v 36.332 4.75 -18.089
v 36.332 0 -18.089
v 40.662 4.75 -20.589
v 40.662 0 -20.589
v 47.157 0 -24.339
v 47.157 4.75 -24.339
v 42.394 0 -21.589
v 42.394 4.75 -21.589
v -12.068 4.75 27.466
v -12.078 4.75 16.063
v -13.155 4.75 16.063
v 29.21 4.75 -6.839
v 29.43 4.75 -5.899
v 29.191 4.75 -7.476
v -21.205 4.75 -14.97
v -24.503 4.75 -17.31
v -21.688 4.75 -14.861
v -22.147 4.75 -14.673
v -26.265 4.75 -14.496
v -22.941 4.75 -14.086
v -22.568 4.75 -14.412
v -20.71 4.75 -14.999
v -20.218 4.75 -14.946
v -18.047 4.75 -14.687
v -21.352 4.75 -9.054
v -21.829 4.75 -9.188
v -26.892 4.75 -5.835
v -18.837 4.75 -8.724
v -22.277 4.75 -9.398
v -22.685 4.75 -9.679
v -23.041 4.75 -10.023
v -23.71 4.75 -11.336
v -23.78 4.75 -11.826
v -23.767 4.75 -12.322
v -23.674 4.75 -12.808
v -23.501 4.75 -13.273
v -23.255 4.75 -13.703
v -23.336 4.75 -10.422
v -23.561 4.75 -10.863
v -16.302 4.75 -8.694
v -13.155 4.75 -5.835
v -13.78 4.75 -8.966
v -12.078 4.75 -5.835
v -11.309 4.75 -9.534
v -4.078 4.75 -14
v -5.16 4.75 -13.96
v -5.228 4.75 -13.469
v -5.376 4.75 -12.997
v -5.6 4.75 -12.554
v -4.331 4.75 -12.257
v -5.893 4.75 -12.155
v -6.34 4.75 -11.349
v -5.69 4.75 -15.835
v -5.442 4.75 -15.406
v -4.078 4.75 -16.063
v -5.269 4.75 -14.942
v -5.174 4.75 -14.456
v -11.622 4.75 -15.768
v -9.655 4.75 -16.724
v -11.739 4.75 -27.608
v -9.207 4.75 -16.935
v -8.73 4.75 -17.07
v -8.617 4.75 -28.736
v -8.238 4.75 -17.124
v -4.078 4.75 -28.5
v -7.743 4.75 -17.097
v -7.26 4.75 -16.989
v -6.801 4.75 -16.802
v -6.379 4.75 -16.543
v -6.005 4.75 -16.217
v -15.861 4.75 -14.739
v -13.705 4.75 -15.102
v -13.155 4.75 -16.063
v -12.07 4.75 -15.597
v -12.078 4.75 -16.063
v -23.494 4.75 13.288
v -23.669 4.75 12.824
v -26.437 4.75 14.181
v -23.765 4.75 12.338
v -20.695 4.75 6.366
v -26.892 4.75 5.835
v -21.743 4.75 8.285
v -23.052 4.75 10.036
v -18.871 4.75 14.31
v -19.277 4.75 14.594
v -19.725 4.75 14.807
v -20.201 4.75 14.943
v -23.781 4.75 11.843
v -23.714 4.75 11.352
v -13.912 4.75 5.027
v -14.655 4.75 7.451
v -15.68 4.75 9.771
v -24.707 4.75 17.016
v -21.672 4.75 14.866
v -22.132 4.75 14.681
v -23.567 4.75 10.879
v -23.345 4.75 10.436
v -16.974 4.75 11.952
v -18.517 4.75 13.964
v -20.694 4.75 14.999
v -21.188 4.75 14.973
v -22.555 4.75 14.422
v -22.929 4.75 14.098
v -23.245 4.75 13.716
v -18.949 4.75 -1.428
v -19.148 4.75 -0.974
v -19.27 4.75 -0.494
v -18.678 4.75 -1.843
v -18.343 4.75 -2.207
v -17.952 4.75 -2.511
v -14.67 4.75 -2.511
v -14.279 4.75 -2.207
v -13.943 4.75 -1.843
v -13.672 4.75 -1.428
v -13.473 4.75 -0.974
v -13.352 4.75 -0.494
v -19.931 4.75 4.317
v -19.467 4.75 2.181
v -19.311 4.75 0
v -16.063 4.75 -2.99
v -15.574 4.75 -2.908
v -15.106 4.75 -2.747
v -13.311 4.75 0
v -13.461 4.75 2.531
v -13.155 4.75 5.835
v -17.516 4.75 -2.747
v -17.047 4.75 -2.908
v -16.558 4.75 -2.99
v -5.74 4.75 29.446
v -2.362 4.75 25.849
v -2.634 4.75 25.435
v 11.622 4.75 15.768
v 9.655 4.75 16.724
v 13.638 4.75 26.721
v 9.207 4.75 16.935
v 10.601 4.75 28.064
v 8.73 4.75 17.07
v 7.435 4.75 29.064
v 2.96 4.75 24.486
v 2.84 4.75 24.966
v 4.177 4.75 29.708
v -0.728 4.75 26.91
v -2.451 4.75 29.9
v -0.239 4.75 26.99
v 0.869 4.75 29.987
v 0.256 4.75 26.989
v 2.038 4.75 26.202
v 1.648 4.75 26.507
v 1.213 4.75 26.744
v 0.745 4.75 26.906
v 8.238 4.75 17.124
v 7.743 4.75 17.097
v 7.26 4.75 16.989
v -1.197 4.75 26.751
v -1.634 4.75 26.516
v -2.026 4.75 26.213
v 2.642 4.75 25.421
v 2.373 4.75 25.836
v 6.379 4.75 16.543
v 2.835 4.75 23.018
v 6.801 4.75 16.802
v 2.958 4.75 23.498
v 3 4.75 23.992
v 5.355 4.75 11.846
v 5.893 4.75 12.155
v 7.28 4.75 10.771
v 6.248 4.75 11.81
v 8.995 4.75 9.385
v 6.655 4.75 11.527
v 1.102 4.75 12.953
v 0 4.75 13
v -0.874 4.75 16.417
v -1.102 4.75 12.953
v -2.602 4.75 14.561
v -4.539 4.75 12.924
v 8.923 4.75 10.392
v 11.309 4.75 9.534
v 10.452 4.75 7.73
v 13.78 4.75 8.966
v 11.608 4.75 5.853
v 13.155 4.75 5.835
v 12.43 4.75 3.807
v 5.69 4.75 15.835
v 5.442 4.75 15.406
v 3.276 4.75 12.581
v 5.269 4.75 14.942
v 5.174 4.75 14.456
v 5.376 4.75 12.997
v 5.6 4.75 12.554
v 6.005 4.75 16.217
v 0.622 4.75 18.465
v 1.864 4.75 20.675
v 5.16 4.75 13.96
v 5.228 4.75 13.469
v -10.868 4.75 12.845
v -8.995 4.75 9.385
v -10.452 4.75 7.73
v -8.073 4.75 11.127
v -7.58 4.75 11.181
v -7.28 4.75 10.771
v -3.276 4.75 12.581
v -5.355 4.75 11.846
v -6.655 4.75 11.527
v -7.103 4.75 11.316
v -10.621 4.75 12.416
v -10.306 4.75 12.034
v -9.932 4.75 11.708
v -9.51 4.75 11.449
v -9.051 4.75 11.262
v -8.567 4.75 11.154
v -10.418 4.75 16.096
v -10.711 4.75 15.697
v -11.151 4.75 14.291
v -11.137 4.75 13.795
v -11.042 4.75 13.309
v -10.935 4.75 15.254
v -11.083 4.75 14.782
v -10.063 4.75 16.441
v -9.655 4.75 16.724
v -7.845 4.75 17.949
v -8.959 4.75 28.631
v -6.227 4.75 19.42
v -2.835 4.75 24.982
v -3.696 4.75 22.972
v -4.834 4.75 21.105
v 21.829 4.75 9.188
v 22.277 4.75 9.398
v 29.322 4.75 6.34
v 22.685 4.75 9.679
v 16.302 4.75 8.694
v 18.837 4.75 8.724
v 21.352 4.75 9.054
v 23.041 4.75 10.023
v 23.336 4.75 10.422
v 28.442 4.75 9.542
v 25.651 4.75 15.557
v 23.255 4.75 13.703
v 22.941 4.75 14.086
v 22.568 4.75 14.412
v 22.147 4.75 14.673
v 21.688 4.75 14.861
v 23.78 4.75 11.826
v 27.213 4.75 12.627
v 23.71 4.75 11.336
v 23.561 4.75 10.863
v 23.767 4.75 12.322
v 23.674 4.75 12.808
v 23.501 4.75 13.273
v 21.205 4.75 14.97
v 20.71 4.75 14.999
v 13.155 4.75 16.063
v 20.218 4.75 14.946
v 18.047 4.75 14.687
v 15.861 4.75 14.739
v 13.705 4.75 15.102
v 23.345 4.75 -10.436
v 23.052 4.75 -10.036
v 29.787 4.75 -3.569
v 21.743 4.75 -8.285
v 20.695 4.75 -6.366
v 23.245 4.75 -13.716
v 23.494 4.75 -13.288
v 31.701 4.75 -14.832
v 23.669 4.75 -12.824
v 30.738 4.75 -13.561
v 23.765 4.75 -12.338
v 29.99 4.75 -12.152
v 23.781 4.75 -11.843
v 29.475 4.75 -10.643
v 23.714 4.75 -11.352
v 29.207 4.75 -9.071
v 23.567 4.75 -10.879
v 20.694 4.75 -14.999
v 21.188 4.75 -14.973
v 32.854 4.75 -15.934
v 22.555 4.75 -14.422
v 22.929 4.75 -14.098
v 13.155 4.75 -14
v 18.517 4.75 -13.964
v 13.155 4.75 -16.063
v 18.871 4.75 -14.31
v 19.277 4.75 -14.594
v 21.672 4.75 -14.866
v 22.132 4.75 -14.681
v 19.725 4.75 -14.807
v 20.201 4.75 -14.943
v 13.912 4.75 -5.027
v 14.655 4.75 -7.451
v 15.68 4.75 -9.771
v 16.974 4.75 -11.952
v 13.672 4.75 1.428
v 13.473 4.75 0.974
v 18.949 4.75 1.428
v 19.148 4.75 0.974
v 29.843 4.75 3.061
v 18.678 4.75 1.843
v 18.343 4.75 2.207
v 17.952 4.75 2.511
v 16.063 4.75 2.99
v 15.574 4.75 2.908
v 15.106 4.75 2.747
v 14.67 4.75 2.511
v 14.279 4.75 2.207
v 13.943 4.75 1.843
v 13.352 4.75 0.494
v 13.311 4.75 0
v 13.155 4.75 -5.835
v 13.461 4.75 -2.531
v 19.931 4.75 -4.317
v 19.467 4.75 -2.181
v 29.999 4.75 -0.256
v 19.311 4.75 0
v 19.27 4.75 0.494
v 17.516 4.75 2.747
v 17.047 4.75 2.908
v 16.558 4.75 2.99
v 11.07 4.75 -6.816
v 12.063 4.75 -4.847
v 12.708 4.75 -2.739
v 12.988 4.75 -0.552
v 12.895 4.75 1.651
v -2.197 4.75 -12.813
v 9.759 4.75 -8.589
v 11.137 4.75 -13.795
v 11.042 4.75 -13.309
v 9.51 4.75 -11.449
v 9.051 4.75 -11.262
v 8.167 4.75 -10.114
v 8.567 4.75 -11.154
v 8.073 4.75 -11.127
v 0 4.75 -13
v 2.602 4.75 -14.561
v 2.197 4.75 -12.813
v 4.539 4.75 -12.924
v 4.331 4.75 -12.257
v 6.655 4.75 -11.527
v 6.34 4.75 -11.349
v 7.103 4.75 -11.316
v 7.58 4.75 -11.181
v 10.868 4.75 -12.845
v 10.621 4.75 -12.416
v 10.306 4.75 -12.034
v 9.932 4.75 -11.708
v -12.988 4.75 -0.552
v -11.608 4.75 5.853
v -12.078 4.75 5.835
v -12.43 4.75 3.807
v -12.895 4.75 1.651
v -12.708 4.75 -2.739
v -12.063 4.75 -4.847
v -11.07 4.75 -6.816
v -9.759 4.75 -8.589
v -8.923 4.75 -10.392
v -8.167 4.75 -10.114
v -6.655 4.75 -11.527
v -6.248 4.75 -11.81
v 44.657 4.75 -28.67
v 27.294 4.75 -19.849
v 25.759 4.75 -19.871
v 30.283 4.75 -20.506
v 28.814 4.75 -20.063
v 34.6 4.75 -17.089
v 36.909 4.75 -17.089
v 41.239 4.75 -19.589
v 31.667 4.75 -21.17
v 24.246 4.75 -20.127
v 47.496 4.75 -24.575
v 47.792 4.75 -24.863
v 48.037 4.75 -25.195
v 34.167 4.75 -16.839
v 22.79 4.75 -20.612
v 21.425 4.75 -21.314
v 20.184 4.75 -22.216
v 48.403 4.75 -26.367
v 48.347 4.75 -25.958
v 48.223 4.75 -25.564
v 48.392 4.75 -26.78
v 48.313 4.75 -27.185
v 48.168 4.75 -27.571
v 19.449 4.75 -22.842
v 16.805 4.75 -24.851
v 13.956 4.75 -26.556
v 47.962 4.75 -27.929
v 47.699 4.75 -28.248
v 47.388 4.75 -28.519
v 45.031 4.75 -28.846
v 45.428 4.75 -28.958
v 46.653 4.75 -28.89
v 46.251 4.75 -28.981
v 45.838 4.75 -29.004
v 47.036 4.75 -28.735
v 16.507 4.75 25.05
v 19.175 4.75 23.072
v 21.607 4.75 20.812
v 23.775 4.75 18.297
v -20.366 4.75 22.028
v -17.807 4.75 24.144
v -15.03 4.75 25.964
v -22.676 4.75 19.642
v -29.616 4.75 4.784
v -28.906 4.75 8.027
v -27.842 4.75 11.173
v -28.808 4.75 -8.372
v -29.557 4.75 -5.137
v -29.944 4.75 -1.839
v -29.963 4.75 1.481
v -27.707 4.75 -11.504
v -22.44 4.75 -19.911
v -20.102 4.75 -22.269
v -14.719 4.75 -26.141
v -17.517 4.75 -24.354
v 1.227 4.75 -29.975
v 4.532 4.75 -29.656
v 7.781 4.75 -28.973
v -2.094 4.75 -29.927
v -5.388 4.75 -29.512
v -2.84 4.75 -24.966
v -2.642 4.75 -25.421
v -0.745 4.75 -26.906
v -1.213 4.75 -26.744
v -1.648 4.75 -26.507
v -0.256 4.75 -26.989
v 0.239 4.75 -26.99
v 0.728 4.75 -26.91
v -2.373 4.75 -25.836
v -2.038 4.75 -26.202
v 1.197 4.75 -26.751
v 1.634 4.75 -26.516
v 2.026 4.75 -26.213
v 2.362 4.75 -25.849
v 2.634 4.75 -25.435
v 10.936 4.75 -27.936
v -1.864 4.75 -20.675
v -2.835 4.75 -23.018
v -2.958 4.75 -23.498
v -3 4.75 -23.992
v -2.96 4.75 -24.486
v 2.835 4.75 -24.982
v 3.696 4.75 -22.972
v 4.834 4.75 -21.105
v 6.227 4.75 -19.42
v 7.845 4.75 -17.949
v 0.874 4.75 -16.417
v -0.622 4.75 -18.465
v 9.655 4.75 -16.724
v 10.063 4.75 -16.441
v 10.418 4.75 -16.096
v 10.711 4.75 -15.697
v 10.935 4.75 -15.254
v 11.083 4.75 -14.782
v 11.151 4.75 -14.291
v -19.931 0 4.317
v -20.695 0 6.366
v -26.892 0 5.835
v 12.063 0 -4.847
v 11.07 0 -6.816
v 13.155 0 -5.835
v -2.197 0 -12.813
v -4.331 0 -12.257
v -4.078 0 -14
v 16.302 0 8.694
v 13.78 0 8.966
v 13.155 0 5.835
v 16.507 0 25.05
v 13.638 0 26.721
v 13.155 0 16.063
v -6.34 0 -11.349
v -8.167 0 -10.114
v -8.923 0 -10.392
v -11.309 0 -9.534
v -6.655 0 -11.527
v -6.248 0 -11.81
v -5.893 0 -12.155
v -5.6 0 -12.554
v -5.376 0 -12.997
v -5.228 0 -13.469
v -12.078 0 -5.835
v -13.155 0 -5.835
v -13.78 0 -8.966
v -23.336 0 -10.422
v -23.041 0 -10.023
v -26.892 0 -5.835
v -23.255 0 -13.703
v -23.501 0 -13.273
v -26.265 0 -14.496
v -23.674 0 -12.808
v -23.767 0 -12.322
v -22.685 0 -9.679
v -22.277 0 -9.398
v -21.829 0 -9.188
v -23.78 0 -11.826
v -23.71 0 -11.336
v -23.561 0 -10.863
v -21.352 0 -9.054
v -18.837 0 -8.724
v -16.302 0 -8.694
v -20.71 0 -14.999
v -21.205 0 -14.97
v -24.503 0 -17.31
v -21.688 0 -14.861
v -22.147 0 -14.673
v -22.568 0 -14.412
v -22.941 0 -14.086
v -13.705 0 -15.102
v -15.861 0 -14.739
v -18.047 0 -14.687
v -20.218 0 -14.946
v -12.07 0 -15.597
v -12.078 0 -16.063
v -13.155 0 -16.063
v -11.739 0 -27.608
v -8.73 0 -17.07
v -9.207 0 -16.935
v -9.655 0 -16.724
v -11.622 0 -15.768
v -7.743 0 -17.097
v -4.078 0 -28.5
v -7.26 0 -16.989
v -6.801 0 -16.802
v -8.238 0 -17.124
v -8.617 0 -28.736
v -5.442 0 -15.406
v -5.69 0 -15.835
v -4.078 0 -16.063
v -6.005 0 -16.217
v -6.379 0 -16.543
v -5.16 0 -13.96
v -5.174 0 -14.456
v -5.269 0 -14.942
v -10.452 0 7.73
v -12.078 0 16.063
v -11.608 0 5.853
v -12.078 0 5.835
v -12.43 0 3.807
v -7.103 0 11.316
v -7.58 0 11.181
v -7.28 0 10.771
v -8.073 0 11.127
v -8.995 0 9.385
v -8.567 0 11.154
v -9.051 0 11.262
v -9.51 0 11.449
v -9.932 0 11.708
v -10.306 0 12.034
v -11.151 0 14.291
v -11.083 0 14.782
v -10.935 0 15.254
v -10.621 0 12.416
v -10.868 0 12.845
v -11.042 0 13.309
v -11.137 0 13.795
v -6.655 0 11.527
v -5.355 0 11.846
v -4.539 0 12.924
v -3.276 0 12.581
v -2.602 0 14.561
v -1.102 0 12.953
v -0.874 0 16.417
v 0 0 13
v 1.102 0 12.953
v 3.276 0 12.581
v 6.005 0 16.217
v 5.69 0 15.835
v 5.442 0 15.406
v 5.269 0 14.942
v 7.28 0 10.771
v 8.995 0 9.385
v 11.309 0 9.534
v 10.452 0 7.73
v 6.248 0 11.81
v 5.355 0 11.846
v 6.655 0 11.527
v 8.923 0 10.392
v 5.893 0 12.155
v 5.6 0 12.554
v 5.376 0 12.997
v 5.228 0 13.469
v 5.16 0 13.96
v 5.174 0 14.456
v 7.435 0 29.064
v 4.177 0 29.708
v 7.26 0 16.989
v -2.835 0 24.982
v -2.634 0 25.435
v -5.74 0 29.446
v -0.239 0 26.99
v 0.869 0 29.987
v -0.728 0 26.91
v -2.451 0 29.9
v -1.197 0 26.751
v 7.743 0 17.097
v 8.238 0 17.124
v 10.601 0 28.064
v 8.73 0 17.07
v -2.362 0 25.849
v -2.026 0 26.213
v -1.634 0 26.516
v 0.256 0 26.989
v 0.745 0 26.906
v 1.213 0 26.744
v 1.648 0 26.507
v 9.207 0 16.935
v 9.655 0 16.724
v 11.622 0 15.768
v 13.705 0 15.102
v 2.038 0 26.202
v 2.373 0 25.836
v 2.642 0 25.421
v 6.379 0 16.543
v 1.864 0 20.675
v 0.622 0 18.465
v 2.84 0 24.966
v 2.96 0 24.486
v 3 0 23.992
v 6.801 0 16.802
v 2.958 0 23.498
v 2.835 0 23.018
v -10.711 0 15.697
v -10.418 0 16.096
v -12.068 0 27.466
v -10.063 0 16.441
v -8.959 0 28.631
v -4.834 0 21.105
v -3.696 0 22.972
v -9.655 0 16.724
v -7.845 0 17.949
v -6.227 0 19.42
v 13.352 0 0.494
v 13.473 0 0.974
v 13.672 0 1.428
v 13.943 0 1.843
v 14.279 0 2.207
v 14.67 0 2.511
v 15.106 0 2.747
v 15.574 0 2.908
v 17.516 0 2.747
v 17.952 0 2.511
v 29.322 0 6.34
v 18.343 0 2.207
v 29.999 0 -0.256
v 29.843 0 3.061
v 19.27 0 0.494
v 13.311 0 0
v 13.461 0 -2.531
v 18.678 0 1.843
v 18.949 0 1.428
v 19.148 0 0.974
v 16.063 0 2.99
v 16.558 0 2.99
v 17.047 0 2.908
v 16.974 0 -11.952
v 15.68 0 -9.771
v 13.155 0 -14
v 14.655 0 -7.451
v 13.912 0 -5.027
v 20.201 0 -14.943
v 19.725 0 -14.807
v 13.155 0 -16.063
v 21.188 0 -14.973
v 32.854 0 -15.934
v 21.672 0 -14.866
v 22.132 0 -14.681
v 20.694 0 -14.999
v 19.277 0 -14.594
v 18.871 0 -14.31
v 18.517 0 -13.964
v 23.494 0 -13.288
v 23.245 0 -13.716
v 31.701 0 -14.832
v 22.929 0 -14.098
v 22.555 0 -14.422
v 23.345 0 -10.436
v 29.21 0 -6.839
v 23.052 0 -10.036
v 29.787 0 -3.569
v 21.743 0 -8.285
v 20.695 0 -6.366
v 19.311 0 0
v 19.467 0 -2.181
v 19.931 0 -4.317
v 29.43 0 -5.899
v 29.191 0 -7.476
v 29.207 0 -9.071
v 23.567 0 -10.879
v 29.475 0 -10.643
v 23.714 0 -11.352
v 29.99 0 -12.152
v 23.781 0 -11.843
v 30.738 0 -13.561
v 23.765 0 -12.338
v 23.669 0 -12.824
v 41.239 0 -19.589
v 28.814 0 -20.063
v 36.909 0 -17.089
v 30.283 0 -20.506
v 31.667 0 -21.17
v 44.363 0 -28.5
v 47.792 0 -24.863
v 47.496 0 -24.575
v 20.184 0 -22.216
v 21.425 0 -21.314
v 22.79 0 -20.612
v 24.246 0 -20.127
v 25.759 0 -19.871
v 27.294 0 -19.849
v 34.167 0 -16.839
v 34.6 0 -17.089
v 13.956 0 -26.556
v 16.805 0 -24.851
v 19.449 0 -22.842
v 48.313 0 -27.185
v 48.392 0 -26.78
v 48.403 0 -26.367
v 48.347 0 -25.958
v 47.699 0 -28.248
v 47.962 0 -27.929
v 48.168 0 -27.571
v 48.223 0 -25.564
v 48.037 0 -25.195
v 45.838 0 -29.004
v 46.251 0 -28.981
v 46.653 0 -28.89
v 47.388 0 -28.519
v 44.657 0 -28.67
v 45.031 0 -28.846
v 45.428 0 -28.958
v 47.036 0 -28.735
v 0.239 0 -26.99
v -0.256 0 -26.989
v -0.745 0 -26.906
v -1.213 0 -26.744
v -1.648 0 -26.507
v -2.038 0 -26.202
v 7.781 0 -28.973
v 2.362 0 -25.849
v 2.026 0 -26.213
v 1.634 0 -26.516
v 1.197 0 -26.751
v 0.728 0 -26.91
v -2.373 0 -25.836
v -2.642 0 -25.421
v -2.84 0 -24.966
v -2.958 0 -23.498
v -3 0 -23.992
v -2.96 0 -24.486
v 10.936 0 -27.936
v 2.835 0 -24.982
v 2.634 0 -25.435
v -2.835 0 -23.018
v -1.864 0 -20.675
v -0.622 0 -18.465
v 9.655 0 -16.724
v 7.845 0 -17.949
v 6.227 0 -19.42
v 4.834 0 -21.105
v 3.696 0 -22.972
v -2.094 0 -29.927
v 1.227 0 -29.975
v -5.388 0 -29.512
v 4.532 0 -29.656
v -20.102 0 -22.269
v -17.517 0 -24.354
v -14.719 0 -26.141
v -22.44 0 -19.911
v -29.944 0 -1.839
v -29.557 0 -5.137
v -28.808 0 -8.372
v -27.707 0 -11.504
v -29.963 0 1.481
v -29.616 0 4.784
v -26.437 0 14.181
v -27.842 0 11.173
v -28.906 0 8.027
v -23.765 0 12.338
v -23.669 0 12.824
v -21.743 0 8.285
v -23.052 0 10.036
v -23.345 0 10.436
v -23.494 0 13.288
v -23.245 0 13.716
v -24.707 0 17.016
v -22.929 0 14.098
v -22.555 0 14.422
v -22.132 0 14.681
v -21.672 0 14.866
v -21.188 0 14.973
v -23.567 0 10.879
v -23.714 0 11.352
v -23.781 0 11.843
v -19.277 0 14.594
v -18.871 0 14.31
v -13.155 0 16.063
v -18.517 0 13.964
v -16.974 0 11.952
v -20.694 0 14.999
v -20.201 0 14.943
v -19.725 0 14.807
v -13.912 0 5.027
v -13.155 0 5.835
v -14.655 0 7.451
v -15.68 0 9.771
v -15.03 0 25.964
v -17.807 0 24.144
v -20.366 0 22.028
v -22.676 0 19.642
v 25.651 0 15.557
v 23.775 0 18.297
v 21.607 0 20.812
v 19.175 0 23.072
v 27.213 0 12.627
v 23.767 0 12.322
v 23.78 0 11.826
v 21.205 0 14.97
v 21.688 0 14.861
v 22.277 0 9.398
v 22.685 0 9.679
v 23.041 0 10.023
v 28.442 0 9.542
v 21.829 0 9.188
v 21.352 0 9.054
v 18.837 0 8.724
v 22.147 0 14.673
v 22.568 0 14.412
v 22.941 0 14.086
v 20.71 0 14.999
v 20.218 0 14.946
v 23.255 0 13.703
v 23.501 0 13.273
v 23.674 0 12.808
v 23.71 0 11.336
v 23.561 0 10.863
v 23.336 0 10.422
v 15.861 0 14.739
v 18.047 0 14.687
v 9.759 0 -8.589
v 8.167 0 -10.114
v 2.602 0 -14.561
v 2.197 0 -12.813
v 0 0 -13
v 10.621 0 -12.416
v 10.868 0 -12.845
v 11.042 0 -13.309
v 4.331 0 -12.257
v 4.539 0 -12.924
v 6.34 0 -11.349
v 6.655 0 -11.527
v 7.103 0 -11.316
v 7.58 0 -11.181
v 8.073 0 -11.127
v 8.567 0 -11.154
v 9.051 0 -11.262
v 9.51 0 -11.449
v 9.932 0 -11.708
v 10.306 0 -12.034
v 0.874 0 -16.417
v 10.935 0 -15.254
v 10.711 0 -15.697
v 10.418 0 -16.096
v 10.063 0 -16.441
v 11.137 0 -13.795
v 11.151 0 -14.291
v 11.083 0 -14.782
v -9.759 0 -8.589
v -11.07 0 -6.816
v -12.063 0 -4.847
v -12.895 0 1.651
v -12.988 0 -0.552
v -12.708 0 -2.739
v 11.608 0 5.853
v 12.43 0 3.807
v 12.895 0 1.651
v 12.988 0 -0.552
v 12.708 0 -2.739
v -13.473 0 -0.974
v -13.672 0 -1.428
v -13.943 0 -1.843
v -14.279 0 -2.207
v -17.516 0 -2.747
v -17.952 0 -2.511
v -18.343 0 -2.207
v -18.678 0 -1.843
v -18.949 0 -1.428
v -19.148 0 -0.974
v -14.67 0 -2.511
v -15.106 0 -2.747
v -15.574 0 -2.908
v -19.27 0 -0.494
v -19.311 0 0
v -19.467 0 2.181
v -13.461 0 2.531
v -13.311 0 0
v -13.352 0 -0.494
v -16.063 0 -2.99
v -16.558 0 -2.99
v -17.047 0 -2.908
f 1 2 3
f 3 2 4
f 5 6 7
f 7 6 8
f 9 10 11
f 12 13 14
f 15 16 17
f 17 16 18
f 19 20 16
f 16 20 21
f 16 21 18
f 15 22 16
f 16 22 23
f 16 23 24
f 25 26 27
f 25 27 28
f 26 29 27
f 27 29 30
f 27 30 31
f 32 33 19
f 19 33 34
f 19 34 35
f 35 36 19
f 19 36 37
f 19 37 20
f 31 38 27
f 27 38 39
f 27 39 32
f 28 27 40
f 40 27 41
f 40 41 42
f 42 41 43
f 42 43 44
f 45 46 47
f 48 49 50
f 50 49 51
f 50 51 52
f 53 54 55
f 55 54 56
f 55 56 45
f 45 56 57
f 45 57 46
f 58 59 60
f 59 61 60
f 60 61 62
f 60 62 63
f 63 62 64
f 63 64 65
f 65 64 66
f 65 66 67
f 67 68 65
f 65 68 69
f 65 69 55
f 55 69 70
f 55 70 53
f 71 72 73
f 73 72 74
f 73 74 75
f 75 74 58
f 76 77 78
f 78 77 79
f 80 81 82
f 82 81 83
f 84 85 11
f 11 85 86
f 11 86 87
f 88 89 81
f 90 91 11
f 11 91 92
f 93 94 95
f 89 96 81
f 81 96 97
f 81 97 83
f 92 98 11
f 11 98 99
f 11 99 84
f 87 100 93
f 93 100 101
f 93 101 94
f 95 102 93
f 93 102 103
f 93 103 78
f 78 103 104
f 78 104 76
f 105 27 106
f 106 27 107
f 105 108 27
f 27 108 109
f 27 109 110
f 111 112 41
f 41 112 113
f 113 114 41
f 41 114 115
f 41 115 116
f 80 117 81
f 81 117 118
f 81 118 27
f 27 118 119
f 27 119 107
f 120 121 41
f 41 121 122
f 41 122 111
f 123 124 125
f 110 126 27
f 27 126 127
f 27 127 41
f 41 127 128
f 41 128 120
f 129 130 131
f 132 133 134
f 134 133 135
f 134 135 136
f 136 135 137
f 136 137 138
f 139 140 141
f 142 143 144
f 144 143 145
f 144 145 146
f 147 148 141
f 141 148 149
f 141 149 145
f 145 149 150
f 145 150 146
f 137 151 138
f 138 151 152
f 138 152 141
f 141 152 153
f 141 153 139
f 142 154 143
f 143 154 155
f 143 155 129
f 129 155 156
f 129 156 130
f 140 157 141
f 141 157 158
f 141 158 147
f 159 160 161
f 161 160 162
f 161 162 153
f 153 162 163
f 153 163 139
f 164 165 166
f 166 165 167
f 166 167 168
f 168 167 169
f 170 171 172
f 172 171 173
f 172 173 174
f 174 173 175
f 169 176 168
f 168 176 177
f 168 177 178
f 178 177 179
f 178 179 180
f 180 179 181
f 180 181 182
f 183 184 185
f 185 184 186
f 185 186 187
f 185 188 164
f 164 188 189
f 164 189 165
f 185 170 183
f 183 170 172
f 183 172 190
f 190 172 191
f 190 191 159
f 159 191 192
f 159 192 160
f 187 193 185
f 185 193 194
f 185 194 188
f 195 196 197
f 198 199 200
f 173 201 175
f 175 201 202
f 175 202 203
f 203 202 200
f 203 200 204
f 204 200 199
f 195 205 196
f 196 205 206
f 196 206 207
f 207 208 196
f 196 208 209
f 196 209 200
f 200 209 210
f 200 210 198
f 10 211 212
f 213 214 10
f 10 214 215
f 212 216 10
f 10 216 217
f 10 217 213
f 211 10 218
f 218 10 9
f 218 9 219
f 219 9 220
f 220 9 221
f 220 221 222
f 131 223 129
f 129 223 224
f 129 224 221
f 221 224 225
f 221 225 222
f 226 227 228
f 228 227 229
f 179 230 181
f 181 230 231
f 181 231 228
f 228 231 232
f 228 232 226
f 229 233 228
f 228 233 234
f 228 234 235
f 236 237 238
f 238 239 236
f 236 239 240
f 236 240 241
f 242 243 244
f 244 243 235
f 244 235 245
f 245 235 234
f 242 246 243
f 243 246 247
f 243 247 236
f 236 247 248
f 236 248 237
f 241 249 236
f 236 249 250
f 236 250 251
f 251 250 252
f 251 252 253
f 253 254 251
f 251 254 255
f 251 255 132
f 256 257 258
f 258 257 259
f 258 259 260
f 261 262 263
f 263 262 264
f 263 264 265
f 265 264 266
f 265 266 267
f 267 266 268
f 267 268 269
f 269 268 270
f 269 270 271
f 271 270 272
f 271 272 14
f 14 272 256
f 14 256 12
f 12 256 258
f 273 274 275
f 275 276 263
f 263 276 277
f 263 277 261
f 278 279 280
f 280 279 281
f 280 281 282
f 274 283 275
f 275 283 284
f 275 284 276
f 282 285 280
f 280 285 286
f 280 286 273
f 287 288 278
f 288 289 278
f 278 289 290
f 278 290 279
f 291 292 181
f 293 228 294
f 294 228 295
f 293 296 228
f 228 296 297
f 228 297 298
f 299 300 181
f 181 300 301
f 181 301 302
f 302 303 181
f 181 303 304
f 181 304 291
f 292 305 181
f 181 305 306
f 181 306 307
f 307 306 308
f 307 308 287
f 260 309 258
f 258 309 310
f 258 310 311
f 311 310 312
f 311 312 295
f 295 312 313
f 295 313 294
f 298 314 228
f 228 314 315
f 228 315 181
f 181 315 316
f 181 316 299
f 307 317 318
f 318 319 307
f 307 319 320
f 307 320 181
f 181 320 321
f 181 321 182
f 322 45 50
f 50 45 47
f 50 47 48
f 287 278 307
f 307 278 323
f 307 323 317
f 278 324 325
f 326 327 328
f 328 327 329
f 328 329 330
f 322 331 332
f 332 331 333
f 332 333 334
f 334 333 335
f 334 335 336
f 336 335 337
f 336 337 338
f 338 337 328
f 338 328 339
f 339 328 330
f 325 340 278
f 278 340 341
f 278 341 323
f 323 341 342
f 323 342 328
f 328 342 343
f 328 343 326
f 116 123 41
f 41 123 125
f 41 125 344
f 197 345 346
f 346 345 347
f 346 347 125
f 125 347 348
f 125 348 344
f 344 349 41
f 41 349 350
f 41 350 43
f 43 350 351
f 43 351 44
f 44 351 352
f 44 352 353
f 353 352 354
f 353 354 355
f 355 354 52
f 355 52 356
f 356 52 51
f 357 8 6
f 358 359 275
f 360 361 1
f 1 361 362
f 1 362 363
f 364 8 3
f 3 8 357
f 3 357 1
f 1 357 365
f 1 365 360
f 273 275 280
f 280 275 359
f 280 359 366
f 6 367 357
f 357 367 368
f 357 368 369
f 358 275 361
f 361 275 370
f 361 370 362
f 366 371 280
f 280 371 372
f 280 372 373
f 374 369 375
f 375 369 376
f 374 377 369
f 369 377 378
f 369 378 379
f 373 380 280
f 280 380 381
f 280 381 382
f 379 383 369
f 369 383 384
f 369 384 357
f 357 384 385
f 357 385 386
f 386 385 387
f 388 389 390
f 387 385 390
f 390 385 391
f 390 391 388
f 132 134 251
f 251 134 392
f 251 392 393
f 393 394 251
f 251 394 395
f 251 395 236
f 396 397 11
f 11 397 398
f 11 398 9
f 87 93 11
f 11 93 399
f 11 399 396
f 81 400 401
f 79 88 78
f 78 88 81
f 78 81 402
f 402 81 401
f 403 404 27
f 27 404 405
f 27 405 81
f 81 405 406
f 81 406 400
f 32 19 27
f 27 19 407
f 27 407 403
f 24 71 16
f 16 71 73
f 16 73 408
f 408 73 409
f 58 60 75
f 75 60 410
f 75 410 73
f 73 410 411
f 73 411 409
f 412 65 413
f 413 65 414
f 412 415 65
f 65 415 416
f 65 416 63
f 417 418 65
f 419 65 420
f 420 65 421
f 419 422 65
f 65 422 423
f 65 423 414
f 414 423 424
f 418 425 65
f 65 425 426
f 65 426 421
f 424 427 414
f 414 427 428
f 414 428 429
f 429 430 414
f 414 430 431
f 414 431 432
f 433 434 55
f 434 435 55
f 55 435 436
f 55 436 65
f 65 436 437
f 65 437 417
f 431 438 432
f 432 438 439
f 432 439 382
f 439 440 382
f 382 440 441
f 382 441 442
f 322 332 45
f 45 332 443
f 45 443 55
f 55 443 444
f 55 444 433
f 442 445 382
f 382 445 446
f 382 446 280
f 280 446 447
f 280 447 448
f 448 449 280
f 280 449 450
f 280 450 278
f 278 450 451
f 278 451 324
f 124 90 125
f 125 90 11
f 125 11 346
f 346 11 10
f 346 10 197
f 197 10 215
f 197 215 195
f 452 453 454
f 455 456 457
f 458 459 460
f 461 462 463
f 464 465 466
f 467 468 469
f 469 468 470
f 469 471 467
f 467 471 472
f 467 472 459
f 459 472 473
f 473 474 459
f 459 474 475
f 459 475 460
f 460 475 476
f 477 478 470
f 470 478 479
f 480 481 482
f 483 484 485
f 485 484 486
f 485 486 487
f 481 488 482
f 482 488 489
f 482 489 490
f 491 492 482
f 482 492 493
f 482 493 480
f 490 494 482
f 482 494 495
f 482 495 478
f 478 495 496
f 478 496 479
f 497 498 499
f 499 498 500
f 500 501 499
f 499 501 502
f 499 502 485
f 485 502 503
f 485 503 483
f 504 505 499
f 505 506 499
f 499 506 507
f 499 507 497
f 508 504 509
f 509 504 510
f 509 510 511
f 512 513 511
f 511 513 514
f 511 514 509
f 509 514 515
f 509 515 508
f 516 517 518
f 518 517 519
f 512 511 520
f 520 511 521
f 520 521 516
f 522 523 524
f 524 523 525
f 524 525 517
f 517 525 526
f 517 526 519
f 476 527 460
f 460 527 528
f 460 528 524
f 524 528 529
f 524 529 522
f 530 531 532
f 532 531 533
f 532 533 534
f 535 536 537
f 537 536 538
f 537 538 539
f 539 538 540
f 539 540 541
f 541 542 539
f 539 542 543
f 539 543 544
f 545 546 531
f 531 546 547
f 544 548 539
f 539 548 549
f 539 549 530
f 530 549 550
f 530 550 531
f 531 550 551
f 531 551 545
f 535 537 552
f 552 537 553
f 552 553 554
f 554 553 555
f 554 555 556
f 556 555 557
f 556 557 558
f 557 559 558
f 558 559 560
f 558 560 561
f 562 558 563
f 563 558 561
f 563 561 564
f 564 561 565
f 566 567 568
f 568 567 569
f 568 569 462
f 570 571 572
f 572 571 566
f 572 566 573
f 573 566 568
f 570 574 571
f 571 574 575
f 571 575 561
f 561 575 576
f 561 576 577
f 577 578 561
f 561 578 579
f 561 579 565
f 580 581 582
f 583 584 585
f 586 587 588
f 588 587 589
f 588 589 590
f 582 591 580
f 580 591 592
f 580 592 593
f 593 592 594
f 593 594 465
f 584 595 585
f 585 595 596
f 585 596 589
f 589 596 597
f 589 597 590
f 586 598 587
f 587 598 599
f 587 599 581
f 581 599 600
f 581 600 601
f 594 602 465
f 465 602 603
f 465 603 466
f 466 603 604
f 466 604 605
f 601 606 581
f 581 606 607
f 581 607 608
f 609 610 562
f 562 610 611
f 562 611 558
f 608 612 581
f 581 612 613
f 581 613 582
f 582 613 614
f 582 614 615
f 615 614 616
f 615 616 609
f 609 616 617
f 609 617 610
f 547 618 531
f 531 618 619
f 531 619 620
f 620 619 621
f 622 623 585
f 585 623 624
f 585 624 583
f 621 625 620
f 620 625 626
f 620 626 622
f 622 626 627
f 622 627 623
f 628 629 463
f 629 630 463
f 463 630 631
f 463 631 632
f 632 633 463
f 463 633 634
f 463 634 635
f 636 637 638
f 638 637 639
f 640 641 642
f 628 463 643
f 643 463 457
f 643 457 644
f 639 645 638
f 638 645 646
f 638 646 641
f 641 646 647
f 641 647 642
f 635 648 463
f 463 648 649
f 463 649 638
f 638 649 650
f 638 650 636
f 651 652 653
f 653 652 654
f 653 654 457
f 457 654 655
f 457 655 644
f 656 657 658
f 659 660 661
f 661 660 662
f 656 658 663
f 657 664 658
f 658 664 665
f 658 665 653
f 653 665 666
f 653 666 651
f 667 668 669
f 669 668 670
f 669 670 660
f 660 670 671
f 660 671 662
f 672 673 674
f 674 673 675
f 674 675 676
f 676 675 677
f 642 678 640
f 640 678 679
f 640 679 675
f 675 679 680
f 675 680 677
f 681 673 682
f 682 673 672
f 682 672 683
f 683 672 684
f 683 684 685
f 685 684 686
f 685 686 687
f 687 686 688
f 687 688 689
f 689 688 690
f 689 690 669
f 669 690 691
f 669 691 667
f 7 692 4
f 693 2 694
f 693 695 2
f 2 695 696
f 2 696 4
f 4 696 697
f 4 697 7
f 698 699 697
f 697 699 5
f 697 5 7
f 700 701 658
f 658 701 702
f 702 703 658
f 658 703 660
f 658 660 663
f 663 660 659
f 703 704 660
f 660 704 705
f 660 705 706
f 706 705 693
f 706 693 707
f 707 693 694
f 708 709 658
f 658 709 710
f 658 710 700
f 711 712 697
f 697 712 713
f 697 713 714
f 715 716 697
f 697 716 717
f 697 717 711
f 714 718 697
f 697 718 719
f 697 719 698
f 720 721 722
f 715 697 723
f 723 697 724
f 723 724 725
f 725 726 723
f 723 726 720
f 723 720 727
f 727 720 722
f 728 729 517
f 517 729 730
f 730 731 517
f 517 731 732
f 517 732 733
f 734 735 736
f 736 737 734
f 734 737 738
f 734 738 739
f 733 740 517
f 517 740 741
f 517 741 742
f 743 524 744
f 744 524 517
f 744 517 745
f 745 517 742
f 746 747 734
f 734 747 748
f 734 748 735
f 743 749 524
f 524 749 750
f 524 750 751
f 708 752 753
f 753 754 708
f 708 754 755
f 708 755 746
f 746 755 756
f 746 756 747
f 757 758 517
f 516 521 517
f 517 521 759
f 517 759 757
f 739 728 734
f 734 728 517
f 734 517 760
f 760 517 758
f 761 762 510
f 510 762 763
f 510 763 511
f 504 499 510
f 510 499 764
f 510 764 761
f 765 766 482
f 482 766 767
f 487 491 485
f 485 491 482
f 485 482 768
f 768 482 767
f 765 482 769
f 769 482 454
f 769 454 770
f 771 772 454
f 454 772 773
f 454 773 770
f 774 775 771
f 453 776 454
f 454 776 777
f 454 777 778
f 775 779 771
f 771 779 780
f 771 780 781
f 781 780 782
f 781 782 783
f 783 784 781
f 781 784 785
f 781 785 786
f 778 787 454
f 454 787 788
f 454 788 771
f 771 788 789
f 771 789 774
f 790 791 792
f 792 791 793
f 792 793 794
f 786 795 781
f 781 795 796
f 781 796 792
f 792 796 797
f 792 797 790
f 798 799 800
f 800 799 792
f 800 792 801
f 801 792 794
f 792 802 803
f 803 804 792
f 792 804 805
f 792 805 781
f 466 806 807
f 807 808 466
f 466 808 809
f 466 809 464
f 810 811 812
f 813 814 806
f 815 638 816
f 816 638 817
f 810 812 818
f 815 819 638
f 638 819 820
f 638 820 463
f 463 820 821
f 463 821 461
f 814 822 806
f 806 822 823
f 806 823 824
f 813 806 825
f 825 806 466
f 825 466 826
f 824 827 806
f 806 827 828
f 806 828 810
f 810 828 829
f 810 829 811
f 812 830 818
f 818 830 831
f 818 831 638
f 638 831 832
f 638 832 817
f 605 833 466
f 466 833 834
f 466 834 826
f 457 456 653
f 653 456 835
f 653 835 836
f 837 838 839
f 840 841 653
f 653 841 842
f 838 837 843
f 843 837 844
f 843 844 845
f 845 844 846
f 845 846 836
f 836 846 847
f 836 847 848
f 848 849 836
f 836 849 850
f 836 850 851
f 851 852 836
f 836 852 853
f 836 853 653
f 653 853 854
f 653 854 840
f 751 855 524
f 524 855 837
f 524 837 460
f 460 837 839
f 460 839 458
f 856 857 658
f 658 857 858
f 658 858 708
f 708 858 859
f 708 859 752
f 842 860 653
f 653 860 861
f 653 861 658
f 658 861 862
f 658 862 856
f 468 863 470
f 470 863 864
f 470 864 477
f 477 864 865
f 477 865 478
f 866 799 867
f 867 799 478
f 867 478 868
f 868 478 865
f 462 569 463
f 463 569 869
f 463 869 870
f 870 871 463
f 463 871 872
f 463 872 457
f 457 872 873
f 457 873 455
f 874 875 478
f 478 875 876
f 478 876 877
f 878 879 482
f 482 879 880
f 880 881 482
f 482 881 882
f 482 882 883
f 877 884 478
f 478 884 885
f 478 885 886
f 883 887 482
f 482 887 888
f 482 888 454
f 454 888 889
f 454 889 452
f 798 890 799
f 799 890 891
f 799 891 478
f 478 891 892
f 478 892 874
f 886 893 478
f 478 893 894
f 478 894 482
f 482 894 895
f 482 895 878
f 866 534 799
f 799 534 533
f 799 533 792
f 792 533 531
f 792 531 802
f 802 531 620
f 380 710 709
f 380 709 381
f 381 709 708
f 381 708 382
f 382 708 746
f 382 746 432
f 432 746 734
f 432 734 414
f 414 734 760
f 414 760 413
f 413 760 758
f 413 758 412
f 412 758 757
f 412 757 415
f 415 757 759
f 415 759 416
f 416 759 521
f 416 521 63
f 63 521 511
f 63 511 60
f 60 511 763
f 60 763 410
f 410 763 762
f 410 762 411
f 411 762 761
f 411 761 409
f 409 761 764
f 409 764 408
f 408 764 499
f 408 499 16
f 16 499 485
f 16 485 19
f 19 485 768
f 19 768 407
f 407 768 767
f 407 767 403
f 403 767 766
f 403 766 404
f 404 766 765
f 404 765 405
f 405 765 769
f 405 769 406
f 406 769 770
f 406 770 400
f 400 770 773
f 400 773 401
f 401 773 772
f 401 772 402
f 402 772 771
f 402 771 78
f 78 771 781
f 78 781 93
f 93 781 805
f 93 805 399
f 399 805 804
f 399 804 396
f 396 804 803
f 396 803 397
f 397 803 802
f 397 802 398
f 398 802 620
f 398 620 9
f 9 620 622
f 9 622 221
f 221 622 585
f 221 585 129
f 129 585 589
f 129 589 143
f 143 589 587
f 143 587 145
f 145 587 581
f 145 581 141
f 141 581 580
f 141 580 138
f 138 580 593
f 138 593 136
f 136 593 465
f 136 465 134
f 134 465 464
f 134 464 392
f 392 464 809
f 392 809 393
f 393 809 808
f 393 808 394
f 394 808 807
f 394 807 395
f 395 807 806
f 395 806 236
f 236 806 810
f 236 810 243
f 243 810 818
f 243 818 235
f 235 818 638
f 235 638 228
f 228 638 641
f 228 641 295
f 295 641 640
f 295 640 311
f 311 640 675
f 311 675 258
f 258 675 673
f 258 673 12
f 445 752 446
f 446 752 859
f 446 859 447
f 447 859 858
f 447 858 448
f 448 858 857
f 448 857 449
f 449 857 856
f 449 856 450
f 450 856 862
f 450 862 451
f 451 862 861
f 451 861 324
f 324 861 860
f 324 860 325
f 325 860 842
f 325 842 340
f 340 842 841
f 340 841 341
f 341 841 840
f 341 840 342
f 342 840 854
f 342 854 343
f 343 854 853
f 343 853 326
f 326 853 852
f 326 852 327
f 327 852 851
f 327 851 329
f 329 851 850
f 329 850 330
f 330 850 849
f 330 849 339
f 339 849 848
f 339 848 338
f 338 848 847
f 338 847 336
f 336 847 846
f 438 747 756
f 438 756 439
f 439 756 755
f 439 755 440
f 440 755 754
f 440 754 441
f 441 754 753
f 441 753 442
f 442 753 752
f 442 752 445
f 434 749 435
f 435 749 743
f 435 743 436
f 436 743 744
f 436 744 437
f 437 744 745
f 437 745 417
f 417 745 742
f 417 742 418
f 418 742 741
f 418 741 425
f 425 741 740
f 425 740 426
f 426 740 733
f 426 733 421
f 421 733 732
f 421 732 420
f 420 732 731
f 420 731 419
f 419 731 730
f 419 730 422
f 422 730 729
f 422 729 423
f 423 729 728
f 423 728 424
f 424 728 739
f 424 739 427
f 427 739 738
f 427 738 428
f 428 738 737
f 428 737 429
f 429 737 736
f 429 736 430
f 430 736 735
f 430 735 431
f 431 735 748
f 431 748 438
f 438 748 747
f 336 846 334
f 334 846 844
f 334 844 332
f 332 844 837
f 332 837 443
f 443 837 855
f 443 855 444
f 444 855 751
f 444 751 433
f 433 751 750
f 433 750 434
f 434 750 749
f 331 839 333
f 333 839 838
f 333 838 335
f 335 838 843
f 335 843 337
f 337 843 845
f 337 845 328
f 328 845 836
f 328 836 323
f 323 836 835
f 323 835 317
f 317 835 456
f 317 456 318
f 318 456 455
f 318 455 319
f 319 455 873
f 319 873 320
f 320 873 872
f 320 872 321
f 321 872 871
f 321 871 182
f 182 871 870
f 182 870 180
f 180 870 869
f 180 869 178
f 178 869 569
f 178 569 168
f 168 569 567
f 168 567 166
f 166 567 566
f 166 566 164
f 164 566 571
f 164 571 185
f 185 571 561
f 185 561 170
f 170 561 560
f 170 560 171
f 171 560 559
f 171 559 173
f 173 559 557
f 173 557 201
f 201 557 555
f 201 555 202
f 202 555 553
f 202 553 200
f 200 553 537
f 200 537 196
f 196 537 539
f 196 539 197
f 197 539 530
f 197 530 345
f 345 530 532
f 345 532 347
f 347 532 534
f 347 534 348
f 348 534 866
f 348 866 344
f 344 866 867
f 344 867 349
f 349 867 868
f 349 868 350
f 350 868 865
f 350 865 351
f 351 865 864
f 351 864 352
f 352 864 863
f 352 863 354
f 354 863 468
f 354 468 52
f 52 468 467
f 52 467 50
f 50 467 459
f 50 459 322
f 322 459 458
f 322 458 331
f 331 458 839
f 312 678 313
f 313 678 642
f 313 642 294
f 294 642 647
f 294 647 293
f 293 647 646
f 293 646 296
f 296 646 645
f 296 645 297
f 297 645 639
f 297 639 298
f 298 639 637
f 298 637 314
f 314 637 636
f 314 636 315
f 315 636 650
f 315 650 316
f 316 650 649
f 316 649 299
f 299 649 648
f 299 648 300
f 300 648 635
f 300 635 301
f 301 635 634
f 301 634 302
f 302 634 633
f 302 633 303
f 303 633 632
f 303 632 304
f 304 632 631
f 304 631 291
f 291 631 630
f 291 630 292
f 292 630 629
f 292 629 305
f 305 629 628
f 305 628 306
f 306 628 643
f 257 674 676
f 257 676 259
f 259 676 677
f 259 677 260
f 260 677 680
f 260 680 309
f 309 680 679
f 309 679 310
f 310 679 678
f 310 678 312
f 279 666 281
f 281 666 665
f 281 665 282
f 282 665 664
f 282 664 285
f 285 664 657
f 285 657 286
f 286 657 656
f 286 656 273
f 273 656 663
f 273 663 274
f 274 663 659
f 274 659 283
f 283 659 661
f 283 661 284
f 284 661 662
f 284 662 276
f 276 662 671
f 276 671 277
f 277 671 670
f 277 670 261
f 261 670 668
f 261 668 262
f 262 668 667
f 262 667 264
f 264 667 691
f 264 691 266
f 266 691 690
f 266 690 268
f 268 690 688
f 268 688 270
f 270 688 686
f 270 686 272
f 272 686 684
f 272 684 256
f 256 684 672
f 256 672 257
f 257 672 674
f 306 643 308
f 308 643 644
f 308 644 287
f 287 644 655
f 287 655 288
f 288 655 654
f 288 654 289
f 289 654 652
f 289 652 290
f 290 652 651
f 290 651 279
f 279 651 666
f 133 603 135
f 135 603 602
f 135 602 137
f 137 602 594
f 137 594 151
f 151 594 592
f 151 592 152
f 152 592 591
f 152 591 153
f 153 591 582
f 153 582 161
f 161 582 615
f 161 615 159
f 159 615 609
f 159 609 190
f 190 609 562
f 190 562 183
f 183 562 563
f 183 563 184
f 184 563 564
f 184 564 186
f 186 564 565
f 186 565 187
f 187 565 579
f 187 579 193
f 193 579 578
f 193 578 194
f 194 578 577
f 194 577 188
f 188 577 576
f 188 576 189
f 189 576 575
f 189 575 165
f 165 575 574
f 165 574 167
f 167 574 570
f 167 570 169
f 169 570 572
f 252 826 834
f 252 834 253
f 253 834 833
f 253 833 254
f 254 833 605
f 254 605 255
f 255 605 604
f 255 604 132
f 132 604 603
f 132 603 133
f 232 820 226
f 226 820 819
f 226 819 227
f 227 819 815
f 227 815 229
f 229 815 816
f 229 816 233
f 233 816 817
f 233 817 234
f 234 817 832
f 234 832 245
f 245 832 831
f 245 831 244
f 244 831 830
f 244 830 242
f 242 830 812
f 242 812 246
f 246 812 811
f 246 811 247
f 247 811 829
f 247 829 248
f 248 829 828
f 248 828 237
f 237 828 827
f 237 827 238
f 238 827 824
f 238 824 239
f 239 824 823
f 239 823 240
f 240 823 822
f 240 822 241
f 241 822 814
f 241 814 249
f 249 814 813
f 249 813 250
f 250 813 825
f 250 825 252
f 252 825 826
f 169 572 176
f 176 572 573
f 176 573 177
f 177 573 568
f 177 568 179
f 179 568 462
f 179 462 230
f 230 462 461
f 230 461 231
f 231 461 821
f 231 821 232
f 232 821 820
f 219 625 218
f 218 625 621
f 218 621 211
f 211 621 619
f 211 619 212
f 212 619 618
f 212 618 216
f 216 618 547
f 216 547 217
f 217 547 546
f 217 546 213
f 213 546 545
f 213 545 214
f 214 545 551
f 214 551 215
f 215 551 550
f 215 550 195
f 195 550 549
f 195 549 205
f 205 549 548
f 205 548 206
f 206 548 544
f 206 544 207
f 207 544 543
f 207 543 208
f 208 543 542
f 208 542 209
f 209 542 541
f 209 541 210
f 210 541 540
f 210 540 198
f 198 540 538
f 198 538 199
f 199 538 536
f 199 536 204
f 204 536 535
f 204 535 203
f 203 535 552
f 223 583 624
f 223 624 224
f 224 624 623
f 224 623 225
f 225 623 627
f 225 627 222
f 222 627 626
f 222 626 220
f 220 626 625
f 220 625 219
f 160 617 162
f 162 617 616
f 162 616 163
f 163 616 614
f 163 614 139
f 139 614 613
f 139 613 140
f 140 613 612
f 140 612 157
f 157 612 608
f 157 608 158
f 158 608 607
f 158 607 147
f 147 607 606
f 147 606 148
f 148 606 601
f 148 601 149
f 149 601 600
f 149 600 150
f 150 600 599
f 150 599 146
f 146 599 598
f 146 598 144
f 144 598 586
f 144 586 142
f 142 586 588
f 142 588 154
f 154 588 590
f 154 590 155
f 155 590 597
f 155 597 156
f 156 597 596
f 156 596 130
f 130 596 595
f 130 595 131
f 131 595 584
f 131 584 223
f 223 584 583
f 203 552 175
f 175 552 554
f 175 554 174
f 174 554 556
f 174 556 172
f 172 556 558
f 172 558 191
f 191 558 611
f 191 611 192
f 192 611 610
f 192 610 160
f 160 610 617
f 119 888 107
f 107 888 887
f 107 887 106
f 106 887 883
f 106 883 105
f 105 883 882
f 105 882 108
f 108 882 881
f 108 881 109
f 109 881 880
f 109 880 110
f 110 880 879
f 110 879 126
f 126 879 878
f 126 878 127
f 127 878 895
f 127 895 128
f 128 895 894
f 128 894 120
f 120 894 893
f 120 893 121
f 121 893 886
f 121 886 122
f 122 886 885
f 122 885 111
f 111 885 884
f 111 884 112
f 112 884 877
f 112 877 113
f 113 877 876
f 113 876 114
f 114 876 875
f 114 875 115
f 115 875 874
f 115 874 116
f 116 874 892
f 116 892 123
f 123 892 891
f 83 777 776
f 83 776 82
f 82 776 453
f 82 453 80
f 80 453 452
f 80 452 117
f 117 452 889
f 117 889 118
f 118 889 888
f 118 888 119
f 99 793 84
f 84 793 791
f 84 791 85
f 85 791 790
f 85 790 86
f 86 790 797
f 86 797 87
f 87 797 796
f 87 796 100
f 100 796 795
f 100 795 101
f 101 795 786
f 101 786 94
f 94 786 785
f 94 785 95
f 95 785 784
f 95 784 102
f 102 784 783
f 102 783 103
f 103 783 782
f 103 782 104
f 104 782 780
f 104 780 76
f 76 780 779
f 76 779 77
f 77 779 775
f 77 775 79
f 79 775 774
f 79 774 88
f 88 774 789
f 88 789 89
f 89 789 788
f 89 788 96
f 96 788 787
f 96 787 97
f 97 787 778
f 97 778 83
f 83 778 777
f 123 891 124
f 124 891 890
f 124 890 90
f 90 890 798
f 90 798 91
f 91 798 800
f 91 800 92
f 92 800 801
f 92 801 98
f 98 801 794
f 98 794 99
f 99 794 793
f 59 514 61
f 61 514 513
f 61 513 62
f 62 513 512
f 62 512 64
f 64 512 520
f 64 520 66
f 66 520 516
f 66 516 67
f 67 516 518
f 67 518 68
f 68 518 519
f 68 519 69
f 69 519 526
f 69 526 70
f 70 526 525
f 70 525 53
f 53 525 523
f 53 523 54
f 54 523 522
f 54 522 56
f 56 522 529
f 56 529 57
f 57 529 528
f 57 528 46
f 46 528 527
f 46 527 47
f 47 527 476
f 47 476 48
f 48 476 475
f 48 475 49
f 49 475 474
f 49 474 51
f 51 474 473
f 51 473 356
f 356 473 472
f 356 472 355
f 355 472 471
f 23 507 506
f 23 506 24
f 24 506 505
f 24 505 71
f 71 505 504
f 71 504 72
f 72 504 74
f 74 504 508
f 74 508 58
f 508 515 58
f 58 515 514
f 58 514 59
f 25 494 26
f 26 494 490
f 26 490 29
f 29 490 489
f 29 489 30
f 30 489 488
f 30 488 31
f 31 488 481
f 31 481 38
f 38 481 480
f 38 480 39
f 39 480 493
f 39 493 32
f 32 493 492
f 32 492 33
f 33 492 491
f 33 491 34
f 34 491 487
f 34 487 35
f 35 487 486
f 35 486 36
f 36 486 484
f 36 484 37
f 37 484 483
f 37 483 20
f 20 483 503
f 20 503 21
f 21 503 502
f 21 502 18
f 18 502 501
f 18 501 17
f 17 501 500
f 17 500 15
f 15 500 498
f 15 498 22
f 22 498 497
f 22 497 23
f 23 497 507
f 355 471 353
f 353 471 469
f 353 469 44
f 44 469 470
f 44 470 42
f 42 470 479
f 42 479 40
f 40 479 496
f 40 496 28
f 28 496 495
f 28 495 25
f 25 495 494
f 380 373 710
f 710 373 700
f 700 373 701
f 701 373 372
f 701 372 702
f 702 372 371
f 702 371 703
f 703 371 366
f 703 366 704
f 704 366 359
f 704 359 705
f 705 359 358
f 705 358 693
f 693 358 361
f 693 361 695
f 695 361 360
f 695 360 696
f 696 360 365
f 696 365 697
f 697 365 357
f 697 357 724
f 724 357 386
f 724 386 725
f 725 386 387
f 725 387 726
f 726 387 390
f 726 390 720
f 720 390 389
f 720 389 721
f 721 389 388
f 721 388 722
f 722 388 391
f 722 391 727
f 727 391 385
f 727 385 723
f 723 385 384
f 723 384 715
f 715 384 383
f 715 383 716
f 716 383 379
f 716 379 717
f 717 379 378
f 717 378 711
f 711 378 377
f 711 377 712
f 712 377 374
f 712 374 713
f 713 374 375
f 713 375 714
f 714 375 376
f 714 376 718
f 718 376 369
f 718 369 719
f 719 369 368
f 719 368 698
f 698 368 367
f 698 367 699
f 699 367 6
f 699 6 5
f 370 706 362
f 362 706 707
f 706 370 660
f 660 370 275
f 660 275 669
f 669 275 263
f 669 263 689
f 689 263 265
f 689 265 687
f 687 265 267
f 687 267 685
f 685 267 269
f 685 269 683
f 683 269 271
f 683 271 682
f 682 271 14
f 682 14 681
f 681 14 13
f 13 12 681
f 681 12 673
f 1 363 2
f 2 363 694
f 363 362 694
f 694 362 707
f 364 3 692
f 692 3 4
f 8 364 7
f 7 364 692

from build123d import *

# Parameters (mm, degrees)
ESQUISSE1_R        = 30
ESQUISSE1_R_2      = 13
BOSS_EXTRU_1_DEPTH = 4.75
BOSS_EXTRU_2_START = -4.75
BOSS_EXTRU_2_DEPTH = 4.75
BOSS_EXTRU_3_DEPTH = 4.75


with BuildPart() as part:
    # Esquisse1 → Boss.-Extru.1 (new body)
    with BuildSketch(Plane(origin=(0, 0, 0), x_dir=(1, 0, 0), z_dir=(0, 1, 0))):
        with Locations(Location((0, 0, 0), (0, 0, 270))):
            Circle(ESQUISSE1_R)
        with Locations(Location((0, 0, 0), (0, 0, 270))):
            Circle(ESQUISSE1_R_2, mode=Mode.SUBTRACT)
        with BuildLine():
            ThreePointArc((-2.834733548, 23.018019494), (0.874151367, 16.41695293), (6.655356686, 11.527415922))
            ThreePointArc((6.655356686, 11.527415922), (10.753432897, 12.625492134), (9.655356686, 16.723568345))
            ThreePointArc((9.655356686, 16.723568345), (5.500346376, 20.237727687), (2.834733548, 24.981980506))
            ThreePointArc((2.834733548, 24.981980506), (-0.981980506, 26.834733548), (-2.834733548, 23.018019494))
        make_face(mode=Mode.SUBTRACT)
        with BuildLine():
            ThreePointArc((23.052396529, 10.036038988), (22.748570703, 14.267786838), (18.516822853, 13.963961012))
            ThreePointArc((18.516822853, 13.963961012), (14.654573974, 7.451439174), (13.310713372, 0))
            ThreePointArc((13.310713372, 0), (16.310713372, -3), (19.310713372, 0))
            ThreePointArc((19.310713372, 0), (20.27655948, 5.355424153), (23.052396529, 10.036038988))
        make_face(mode=Mode.SUBTRACT)
        with BuildLine():
            ThreePointArc((20.217662981, -14.945941518), (23.730551209, -12.56694671), (21.3515564, -9.054058482))
            ThreePointArc((21.3515564, -9.054058482), (13.780422607, -8.965513756), (6.655356686, -11.527415922))
            ThreePointArc((6.655356686, -11.527415922), (5.557280474, -15.625492134), (9.655356686, -16.723568345))
            ThreePointArc((9.655356686, -16.723568345), (14.776213104, -14.882303535), (20.217662981, -14.945941518))
        make_face(mode=Mode.SUBTRACT)
        with BuildLine():
            ThreePointArc((-2.834733548, -24.981980506), (0.981980506, -26.834733548), (2.834733548, -23.018019494))
            ThreePointArc((2.834733548, -23.018019494), (-0.874151367, -16.41695293), (-6.655356686, -11.527415922))
            ThreePointArc((-6.655356686, -11.527415922), (-10.753432897, -12.625492134), (-9.655356686, -16.723568345))
            ThreePointArc((-9.655356686, -16.723568345), (-5.500346376, -20.237727687), (-2.834733548, -24.981980506))
        make_face(mode=Mode.SUBTRACT)
        with BuildLine():
            ThreePointArc((-23.052396529, -10.036038988), (-22.748570703, -14.267786838), (-18.516822853, -13.963961012))
            ThreePointArc((-18.516822853, -13.963961012), (-14.654573974, -7.451439174), (-13.310713372, 0))
            ThreePointArc((-13.310713372, 0), (-16.310713372, 3), (-19.310713372, 0))
            ThreePointArc((-19.310713372, 0), (-20.27655948, -5.355424153), (-23.052396529, -10.036038988))
        make_face(mode=Mode.SUBTRACT)
        with BuildLine():
            ThreePointArc((-20.217662981, 14.945941518), (-23.730551209, 12.56694671), (-21.3515564, 9.054058482))
            ThreePointArc((-21.3515564, 9.054058482), (-13.780422607, 8.965513756), (-6.655356686, 11.527415922))
            ThreePointArc((-6.655356686, 11.527415922), (-5.557280474, 15.625492134), (-9.655356686, 16.723568345))
            ThreePointArc((-9.655356686, 16.723568345), (-14.776213104, 14.882303535), (-20.217662981, 14.945941518))
        make_face(mode=Mode.SUBTRACT)
    extrude(amount=BOSS_EXTRU_1_DEPTH)

    # Esquisse2 → Boss.-Extru.2 (add)
    with BuildSketch(Plane(origin=(0, 4.75, 0), x_dir=(1, 0, 0), z_dir=(0, 1, 0)).offset(BOSS_EXTRU_2_START)):
        with BuildLine():
            Line((19.448716719, 22.841791041), (20.183832184, 22.215874605))
            ThreePointArc((20.183832184, 22.215874605), (25.759295996, 19.87106259), (31.666737758, 21.169550915))
            Line((31.666737758, 21.169550915), (44.657118814, 28.669550915))
            ThreePointArc((44.657118814, 28.669550915), (48.072182324, 27.754487405), (47.157118814, 24.339423896))
            Line((47.157118814, 24.339423896), (34.166737758, 16.839423896))
            ThreePointArc((34.166737758, 16.839423896), (29.989946446, 12.152392884), (29.430081471, 5.899361893))
            Line((29.430081471, 5.899361893), (29.20996886, 6.839423896))
            ThreePointArc((29.20996886, 6.839423896), (25.611244779, 15.622552316), (19.448716719, 22.841791041))
        make_face()
    extrude(amount=BOSS_EXTRU_2_DEPTH)

    # Esquisse3 → Boss.-Extru.3 (add)
    with BuildSketch(Plane(origin=(0, 4.75, 0), x_dir=(1, 0, 0), z_dir=(0, 1, 0))):
        Polygon((34.599750459, 17.089423896), (36.909151536, 17.089423896), (36.331801267, 18.089423896), align=None)
        Polygon((40.661928286, 20.589423896), (42.393979093, 21.589423896), (41.239278555, 19.589423896), align=None)
    extrude(amount=-BOSS_EXTRU_3_DEPTH)


solid = part.part
